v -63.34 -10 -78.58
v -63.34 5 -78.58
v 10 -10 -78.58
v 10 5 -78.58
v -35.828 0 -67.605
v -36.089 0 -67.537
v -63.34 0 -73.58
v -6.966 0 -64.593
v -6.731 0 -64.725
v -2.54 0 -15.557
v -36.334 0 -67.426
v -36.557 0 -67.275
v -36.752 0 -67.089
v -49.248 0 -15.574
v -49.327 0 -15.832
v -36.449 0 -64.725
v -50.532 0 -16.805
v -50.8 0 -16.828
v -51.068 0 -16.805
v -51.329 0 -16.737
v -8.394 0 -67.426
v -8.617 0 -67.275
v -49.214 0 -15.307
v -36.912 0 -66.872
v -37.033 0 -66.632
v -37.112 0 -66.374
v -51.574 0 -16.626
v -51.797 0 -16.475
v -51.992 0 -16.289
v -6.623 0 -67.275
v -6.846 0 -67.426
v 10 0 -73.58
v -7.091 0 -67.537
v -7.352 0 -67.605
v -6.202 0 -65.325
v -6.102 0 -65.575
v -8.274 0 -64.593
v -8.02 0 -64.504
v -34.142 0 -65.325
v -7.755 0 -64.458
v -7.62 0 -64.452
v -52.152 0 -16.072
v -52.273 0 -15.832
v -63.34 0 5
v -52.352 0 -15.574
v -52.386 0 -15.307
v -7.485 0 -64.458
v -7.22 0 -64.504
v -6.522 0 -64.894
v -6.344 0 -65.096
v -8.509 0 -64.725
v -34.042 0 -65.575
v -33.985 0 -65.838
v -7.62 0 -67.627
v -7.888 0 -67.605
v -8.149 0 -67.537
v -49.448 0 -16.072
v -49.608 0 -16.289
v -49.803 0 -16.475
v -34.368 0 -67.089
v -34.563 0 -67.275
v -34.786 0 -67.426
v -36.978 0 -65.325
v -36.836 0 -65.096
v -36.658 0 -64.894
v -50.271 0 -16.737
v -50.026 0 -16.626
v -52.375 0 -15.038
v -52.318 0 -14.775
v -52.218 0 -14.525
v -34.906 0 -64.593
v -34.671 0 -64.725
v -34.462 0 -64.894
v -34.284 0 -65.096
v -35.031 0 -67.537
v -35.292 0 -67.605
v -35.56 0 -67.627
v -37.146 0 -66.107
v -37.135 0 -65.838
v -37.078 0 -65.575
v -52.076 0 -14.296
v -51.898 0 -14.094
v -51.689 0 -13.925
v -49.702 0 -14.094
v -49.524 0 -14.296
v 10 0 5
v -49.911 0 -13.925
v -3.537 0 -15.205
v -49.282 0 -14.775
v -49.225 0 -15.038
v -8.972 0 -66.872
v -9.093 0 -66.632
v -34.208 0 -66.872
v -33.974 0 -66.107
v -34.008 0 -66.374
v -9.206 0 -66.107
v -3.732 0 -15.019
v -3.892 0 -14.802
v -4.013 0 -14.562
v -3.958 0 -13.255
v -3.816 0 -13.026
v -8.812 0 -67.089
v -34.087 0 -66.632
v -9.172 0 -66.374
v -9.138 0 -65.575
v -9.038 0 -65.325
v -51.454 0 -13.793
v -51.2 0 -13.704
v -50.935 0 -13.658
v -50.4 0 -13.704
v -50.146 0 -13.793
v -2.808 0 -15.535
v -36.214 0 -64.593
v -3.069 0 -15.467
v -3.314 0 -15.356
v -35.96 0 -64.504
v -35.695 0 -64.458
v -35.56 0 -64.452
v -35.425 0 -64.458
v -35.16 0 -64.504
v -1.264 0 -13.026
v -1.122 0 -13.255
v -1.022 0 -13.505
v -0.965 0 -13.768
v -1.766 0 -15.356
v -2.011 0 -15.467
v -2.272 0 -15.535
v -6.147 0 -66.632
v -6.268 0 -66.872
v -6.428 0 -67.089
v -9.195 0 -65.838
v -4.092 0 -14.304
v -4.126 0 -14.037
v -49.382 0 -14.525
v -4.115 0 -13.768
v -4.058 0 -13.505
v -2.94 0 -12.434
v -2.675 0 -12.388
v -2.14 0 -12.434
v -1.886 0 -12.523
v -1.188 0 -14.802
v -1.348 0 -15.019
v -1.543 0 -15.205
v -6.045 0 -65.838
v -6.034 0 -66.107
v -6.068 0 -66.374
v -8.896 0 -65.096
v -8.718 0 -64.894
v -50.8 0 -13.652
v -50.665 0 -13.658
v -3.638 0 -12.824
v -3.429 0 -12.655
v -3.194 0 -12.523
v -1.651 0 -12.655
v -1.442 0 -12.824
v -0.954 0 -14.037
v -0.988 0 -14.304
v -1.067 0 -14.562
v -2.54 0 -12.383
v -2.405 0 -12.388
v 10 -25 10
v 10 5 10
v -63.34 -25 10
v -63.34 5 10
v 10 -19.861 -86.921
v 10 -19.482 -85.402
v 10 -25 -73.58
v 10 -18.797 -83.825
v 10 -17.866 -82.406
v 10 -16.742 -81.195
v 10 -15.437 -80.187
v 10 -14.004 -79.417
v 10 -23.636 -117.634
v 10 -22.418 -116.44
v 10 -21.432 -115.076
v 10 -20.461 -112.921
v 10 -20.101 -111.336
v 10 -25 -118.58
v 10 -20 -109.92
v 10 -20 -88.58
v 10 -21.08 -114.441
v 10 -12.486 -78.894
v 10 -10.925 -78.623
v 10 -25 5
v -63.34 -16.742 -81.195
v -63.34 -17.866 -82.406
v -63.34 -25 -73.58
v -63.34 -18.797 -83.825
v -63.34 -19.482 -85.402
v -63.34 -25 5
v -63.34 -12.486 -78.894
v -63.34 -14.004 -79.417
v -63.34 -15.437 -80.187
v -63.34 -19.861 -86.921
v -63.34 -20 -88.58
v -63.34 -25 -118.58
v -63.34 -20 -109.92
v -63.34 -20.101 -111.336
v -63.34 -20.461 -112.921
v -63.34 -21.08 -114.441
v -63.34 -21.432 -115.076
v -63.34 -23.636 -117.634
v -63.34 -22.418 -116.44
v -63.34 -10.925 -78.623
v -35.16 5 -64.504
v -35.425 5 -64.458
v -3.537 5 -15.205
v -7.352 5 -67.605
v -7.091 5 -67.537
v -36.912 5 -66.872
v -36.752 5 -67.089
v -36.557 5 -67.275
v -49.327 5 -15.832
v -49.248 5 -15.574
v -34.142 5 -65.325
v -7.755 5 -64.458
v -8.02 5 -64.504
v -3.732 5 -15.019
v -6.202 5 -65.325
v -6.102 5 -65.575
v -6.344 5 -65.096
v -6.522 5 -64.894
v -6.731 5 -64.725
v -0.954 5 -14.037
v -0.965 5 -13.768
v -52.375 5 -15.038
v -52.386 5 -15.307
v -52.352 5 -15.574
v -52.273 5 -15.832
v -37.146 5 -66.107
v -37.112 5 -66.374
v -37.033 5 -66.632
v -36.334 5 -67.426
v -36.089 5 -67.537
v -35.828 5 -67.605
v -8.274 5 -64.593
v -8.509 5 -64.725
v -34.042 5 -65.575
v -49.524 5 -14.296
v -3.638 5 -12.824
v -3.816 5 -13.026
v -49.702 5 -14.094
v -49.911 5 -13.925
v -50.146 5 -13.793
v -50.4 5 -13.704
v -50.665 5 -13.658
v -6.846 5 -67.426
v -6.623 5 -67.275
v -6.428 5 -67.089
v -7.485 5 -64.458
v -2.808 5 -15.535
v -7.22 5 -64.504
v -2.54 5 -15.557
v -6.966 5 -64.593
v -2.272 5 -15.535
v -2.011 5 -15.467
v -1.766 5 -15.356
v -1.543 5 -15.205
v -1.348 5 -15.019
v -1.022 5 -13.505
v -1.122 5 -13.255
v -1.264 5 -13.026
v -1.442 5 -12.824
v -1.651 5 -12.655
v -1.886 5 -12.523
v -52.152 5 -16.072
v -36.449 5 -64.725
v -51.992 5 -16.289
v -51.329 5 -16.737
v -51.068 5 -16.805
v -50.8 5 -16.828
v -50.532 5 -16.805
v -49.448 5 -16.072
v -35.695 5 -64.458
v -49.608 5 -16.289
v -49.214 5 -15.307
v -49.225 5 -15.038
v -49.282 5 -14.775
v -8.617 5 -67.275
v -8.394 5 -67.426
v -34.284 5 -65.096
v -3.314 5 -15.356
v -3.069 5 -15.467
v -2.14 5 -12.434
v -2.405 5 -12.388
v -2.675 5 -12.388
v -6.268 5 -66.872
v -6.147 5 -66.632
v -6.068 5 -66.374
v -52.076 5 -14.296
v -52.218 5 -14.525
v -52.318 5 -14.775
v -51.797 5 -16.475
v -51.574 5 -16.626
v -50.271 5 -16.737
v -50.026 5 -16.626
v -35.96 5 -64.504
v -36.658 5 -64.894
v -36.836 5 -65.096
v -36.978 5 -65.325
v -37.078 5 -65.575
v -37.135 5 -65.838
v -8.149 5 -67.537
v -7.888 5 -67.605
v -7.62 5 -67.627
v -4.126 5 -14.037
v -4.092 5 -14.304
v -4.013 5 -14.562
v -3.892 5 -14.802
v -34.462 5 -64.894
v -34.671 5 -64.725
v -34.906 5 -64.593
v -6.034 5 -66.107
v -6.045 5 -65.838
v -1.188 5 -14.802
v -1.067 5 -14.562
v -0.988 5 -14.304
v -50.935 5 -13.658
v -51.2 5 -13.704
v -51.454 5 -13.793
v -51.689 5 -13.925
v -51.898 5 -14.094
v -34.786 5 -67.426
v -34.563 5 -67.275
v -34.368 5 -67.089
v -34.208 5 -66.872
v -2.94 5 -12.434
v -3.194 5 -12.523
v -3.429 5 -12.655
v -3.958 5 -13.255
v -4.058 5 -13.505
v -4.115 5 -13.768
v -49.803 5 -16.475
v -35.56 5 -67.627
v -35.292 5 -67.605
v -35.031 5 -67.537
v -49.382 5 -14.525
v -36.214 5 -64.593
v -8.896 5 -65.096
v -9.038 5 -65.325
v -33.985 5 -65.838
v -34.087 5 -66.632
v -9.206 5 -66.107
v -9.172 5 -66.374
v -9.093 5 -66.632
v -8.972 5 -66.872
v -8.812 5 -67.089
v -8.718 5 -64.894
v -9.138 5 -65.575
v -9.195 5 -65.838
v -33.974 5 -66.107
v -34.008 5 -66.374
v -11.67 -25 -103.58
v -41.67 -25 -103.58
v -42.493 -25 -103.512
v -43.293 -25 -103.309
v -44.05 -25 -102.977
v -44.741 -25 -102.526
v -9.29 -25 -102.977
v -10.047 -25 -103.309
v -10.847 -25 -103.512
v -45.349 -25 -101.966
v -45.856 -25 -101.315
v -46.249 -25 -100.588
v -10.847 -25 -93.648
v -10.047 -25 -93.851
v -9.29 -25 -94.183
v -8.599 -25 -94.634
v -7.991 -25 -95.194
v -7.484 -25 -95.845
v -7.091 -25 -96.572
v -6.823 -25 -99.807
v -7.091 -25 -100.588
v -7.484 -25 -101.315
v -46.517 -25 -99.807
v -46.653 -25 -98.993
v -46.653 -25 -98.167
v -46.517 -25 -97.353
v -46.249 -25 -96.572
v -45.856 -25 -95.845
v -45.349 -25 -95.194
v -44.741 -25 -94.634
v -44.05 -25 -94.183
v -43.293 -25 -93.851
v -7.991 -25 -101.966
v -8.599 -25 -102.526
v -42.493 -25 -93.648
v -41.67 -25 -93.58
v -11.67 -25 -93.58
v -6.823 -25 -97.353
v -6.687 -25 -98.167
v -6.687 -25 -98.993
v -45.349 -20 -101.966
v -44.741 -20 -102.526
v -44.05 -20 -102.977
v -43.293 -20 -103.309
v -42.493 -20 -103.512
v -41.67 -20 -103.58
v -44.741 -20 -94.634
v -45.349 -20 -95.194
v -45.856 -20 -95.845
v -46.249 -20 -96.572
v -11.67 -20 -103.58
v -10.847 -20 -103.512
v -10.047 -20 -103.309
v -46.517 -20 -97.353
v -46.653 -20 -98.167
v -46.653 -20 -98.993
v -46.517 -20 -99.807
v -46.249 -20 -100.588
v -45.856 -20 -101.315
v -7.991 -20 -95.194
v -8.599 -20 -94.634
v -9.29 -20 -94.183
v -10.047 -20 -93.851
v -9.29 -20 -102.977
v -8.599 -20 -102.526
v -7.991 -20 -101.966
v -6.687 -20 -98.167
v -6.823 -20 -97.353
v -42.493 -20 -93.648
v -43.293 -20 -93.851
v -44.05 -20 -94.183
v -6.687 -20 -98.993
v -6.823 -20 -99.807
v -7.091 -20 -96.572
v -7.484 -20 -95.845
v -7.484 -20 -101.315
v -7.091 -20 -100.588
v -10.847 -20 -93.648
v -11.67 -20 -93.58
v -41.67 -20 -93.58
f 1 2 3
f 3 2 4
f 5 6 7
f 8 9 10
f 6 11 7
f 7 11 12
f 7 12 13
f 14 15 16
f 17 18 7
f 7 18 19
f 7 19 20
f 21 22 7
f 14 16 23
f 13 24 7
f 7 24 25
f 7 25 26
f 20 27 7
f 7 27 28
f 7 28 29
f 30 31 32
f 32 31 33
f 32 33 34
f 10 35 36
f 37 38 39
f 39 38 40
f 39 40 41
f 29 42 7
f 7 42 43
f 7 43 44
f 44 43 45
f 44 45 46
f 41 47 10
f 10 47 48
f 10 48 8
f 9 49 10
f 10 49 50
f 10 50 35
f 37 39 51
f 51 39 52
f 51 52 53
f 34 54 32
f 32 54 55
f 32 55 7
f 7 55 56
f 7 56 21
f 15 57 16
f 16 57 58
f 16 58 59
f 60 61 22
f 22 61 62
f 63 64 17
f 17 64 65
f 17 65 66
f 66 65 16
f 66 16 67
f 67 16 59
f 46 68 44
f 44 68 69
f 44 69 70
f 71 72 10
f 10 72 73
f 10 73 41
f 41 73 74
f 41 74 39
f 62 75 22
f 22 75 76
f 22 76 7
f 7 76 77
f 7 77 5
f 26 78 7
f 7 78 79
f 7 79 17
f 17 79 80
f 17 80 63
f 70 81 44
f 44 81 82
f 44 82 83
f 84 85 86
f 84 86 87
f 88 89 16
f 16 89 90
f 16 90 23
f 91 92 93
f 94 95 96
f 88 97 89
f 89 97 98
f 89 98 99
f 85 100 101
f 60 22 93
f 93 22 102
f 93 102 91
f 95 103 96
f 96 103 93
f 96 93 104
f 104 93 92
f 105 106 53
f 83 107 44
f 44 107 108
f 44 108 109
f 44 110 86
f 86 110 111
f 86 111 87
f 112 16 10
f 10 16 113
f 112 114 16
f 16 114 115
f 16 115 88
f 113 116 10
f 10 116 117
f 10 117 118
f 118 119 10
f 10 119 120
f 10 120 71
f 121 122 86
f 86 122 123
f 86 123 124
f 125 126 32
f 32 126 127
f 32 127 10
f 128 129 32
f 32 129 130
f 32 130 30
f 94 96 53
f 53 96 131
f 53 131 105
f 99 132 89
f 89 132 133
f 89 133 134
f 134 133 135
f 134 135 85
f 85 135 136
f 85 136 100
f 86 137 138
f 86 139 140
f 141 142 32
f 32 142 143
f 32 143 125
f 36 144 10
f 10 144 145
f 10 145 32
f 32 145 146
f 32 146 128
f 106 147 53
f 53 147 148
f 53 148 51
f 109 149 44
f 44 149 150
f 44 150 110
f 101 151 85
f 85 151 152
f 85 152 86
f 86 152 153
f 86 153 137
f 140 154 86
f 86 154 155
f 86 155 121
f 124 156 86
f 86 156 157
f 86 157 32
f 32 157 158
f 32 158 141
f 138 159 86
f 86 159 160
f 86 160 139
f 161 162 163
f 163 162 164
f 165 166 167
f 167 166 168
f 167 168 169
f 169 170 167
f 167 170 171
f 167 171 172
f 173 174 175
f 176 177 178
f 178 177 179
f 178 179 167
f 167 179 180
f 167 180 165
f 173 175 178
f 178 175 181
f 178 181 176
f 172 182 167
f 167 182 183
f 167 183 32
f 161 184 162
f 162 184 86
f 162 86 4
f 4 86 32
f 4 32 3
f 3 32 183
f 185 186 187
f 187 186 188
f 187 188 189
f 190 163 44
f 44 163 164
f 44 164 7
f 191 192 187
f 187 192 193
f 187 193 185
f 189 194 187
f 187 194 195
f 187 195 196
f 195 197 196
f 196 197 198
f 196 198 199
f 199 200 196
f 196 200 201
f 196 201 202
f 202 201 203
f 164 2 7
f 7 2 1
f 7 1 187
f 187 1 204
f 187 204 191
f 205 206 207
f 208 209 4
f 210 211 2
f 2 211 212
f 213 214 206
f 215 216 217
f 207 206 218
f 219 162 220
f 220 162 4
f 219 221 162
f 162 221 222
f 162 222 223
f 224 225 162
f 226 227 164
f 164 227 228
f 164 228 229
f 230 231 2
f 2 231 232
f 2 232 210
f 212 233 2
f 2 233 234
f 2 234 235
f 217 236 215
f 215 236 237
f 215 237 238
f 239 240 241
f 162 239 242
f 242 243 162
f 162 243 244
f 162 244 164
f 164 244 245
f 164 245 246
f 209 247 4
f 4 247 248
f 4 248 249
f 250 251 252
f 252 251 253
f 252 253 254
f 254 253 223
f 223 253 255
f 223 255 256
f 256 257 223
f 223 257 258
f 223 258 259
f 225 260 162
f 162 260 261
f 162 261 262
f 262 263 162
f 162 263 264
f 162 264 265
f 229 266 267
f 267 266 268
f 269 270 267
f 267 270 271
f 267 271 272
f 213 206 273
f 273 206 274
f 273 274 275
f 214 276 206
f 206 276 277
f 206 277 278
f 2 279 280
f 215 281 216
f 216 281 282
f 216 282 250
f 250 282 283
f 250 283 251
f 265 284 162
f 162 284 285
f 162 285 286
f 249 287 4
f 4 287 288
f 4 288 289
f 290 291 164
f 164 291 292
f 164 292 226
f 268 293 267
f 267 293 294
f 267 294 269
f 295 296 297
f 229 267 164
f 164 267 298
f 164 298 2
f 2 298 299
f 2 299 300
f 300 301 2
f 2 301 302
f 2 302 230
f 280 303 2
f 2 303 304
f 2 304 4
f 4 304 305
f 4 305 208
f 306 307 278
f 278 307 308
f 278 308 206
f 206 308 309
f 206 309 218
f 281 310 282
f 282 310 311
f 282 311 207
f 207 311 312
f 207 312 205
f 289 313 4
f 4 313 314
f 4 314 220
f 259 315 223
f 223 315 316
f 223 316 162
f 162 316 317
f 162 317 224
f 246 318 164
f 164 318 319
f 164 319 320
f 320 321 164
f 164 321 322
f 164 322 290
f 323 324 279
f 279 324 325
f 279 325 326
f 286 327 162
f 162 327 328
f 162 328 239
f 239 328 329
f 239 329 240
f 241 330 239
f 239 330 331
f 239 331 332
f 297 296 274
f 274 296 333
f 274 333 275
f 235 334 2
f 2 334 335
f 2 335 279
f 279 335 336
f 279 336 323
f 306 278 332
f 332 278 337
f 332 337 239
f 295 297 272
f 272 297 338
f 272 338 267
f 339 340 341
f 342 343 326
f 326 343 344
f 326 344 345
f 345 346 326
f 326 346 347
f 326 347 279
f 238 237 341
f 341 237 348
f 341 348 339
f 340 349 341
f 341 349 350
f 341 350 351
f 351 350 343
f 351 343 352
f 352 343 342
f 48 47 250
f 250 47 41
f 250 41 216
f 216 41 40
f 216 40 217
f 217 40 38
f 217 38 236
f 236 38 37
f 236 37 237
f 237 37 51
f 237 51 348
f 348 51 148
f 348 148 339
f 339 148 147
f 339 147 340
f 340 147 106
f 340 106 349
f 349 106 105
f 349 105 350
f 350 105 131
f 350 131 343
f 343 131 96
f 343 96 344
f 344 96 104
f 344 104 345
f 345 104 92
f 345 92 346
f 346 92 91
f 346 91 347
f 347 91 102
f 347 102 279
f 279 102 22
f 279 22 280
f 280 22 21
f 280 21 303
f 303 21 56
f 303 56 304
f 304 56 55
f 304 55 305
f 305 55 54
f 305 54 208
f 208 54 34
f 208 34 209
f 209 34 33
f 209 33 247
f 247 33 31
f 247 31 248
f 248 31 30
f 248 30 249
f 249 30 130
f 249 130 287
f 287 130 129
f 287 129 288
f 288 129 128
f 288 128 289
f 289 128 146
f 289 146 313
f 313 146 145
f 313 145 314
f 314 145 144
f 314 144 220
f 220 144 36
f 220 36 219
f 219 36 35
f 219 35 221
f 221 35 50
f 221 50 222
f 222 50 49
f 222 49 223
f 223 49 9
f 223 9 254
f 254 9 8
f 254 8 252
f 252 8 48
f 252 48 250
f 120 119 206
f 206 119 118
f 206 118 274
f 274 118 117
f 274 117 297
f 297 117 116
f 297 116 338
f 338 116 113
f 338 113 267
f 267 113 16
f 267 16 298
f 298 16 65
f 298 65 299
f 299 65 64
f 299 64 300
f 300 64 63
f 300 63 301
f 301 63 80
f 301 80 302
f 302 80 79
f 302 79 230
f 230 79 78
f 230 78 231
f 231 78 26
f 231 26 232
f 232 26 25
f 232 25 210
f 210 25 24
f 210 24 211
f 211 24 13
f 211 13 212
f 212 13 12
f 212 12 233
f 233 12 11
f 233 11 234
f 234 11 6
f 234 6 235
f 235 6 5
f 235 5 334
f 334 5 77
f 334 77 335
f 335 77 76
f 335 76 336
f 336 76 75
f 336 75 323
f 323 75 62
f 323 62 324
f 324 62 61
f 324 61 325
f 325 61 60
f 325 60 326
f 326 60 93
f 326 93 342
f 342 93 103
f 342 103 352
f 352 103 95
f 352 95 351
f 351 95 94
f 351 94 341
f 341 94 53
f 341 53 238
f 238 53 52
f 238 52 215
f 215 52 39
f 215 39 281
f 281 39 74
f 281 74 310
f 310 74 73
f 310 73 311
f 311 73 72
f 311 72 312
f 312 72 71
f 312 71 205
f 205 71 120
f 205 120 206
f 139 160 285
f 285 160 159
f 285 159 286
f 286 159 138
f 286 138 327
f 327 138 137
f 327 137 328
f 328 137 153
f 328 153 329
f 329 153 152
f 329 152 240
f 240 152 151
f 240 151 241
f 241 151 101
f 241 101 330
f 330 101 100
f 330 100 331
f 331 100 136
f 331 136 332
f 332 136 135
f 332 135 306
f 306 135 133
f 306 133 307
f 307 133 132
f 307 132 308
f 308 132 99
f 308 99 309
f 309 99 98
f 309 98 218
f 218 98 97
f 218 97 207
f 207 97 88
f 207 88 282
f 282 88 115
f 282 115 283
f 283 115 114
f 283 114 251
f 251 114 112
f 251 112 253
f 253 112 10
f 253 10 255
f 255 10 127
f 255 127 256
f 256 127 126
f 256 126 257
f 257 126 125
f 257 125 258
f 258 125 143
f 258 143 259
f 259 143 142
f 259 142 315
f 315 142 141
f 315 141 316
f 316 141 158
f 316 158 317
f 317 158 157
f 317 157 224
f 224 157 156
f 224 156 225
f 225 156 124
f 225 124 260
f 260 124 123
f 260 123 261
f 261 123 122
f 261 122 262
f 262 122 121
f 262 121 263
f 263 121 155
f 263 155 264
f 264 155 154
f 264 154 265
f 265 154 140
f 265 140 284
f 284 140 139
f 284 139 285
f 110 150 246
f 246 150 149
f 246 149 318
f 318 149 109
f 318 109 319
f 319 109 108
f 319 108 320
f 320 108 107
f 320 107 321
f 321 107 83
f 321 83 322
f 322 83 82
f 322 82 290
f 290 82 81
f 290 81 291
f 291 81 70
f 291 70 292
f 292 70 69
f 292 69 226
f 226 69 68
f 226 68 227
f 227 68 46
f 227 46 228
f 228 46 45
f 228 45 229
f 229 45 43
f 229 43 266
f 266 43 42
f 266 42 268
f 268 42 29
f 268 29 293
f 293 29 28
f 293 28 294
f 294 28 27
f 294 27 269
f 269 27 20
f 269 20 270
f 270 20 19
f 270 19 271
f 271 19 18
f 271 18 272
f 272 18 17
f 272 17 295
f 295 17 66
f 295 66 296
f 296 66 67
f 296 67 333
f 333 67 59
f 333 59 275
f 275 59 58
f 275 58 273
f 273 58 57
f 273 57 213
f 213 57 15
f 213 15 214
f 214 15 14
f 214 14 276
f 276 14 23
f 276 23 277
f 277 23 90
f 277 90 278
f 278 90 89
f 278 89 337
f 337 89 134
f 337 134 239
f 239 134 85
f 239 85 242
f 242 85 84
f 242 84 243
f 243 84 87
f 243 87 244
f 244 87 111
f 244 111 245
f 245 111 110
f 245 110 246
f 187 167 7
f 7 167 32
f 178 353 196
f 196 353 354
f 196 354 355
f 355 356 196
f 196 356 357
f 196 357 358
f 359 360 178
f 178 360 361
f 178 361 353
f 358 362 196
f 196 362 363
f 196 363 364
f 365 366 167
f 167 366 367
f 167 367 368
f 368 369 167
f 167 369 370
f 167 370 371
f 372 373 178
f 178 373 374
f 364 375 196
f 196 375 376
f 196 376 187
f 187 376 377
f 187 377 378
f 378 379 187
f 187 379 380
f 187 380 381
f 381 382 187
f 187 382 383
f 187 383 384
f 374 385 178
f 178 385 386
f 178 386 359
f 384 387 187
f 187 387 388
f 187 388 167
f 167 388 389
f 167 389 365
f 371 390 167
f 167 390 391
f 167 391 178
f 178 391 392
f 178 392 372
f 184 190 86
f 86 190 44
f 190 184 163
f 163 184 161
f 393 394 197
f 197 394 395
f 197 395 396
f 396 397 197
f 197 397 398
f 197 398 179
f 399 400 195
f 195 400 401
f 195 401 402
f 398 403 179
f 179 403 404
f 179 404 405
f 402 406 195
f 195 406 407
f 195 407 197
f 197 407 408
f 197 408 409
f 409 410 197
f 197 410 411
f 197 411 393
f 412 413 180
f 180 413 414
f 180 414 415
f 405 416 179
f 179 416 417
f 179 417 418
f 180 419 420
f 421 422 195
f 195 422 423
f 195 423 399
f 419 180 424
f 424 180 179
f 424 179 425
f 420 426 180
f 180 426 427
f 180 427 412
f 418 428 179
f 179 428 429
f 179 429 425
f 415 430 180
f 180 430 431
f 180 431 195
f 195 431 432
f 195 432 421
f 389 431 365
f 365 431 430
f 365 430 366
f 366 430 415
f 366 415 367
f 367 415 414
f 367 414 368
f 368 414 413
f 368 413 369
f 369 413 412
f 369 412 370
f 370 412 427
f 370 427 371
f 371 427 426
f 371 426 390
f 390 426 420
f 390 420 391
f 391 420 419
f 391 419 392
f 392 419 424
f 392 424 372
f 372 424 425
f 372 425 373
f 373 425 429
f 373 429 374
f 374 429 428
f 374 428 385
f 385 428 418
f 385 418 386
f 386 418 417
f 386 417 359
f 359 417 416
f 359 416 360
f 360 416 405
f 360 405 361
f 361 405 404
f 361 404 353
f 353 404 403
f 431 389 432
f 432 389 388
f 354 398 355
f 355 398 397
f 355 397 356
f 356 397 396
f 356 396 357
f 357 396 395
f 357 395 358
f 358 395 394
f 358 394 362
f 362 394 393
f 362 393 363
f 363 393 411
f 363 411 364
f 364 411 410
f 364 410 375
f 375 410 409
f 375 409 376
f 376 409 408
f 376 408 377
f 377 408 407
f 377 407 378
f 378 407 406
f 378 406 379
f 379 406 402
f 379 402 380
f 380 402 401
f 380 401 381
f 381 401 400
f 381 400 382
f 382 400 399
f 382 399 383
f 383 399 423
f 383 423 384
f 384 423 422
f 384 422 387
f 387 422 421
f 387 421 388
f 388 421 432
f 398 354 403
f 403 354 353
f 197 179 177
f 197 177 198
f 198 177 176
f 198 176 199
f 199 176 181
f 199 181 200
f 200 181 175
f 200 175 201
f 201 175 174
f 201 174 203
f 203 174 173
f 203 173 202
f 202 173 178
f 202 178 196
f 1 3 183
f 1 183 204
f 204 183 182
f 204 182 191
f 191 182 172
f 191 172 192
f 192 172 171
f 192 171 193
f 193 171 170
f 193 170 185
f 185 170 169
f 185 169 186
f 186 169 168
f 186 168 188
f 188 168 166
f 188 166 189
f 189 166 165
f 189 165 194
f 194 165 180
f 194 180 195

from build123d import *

# Parameters (mm, degrees)
SKETCH2_W           = 73.34
SKETCH2_H           = 88.58
BOSS_EXTRUDE1_DEPTH = 5
SKETCH1_R           = 1.5875
CUT_EXTRUDE3_DEPTH  = 50
SKETCH3_W           = 73.34
SKETCH3_H           = 5
BOSS_EXTRUDE2_DEPTH = 25
SKETCH4_W           = 73.34
SKETCH4_H           = 5
BOSS_EXTRUDE3_DEPTH = 40
CUT_EXTRUDE4_DEPTH  = 40
VARFILLET1_START    = -64
VARFILLET1_DEPTH    = 75
VARFILLET2_START    = -63.34
VARFILLET2_DEPTH    = 73.34


with BuildPart() as part:
    # Sketch2 → Boss-Extrude1 (new body)
    with BuildSketch(Plane(origin=(0, 0, 0), x_dir=(1, 0, 0), z_dir=(0, 1, 0))):
        with Locations((-26.67, 34.29)):
            Rectangle(SKETCH2_W, SKETCH2_H)
    extrude(amount=BOSS_EXTRUDE1_DEPTH)

    # Sketch1 → Cut-Extrude3 (cut)
    with BuildSketch(Plane(origin=(0, 0, 0), x_dir=(1, 0, 0), z_dir=(0, 1, 0))):
        with Locations(Location((-7.62, 66.04, 0), (0, 0, 90))):
            Circle(SKETCH1_R)
        with Locations(Location((-35.56, 66.04, 0), (0, 0, 90))):
            Circle(SKETCH1_R)
        with Locations(Location((-2.54, 13.97, 0), (0, 0, 90))):
            Circle(SKETCH1_R)
        with Locations(Location((-50.8, 15.24, 0), (0, 0, 90))):
            Circle(SKETCH1_R)
    extrude(amount=CUT_EXTRUDE3_DEPTH, mode=Mode.SUBTRACT)

    # Sketch3 → Boss-Extrude2 (add)
    with BuildSketch(Plane.XZ):
        with Locations((-26.67, -76.08)):
            Rectangle(SKETCH3_W, SKETCH3_H)
        with Locations((-26.67, 7.5)):
            Rectangle(SKETCH3_W, SKETCH3_H)
    extrude(amount=BOSS_EXTRUDE2_DEPTH)

    # Sketch4 → Boss-Extrude3 (add)
    with BuildSketch(Plane(origin=(0, 0, -78.58), x_dir=(-1, 0, 0), z_dir=(0, 0, -1))):
        with Locations((26.67, -22.5)):
            Rectangle(SKETCH4_W, SKETCH4_H)
    extrude(amount=BOSS_EXTRUDE3_DEPTH)

    # Sketch5 → Cut-Extrude4 (cut)
    with BuildSketch(Plane(origin=(0, -20, 0), x_dir=(1, 0, 0), z_dir=(0, 1, 0))):
        with BuildLine():
            Line((-41.67, 93.58), (-11.67, 93.58))
            ThreePointArc((-11.67, 93.58), (-6.67, 98.58), (-11.67, 103.58))
            Line((-11.67, 103.58), (-41.67, 103.58))
            ThreePointArc((-41.67, 103.58), (-46.67, 98.58), (-41.67, 93.58))
        make_face()
    extrude(amount=-CUT_EXTRUDE4_DEPTH, mode=Mode.SUBTRACT)

    # VarFillet1: read off the stored shape, not the designer's step
    # VarFillet1 outline → VarFillet1 (cut)
    with BuildSketch(Plane.YZ.offset(VARFILLET1_START)):
        with BuildLine():
            add(Edge.make_bspline(
                [(-25, -118.58), (-20, -115.693248654), (-20, -109.919745962)],
                knots=[0, 0, 0, 1, 1, 1], degree=2, weights=[1, 0.866025404, 1]))
            Line((-25, -118.58), (-20, -118.58))
            Line((-20, -118.58), (-20, -109.919745962))
        make_face()
    extrude(amount=VARFILLET1_DEPTH, mode=Mode.SUBTRACT)

    # VarFillet2: read off the stored shape, not the designer's step
    # VarFillet2 outline → VarFillet2 (add)
    with BuildSketch(Plane.YZ.offset(VARFILLET2_START)):
        with BuildLine():
            Line((-20, -78.58), (-20, -88.58))
            add(Edge.make_bspline(
                [(-20, -88.58), (-20, -78.58), (-10, -78.58)],
                knots=[0, 0, 0, 1, 1, 1], degree=2, weights=[1, 0.707106781, 1]))
            Line((-10, -78.58), (-20, -78.58))
        make_face()
    extrude(amount=VARFILLET2_DEPTH)


solid = part.part
